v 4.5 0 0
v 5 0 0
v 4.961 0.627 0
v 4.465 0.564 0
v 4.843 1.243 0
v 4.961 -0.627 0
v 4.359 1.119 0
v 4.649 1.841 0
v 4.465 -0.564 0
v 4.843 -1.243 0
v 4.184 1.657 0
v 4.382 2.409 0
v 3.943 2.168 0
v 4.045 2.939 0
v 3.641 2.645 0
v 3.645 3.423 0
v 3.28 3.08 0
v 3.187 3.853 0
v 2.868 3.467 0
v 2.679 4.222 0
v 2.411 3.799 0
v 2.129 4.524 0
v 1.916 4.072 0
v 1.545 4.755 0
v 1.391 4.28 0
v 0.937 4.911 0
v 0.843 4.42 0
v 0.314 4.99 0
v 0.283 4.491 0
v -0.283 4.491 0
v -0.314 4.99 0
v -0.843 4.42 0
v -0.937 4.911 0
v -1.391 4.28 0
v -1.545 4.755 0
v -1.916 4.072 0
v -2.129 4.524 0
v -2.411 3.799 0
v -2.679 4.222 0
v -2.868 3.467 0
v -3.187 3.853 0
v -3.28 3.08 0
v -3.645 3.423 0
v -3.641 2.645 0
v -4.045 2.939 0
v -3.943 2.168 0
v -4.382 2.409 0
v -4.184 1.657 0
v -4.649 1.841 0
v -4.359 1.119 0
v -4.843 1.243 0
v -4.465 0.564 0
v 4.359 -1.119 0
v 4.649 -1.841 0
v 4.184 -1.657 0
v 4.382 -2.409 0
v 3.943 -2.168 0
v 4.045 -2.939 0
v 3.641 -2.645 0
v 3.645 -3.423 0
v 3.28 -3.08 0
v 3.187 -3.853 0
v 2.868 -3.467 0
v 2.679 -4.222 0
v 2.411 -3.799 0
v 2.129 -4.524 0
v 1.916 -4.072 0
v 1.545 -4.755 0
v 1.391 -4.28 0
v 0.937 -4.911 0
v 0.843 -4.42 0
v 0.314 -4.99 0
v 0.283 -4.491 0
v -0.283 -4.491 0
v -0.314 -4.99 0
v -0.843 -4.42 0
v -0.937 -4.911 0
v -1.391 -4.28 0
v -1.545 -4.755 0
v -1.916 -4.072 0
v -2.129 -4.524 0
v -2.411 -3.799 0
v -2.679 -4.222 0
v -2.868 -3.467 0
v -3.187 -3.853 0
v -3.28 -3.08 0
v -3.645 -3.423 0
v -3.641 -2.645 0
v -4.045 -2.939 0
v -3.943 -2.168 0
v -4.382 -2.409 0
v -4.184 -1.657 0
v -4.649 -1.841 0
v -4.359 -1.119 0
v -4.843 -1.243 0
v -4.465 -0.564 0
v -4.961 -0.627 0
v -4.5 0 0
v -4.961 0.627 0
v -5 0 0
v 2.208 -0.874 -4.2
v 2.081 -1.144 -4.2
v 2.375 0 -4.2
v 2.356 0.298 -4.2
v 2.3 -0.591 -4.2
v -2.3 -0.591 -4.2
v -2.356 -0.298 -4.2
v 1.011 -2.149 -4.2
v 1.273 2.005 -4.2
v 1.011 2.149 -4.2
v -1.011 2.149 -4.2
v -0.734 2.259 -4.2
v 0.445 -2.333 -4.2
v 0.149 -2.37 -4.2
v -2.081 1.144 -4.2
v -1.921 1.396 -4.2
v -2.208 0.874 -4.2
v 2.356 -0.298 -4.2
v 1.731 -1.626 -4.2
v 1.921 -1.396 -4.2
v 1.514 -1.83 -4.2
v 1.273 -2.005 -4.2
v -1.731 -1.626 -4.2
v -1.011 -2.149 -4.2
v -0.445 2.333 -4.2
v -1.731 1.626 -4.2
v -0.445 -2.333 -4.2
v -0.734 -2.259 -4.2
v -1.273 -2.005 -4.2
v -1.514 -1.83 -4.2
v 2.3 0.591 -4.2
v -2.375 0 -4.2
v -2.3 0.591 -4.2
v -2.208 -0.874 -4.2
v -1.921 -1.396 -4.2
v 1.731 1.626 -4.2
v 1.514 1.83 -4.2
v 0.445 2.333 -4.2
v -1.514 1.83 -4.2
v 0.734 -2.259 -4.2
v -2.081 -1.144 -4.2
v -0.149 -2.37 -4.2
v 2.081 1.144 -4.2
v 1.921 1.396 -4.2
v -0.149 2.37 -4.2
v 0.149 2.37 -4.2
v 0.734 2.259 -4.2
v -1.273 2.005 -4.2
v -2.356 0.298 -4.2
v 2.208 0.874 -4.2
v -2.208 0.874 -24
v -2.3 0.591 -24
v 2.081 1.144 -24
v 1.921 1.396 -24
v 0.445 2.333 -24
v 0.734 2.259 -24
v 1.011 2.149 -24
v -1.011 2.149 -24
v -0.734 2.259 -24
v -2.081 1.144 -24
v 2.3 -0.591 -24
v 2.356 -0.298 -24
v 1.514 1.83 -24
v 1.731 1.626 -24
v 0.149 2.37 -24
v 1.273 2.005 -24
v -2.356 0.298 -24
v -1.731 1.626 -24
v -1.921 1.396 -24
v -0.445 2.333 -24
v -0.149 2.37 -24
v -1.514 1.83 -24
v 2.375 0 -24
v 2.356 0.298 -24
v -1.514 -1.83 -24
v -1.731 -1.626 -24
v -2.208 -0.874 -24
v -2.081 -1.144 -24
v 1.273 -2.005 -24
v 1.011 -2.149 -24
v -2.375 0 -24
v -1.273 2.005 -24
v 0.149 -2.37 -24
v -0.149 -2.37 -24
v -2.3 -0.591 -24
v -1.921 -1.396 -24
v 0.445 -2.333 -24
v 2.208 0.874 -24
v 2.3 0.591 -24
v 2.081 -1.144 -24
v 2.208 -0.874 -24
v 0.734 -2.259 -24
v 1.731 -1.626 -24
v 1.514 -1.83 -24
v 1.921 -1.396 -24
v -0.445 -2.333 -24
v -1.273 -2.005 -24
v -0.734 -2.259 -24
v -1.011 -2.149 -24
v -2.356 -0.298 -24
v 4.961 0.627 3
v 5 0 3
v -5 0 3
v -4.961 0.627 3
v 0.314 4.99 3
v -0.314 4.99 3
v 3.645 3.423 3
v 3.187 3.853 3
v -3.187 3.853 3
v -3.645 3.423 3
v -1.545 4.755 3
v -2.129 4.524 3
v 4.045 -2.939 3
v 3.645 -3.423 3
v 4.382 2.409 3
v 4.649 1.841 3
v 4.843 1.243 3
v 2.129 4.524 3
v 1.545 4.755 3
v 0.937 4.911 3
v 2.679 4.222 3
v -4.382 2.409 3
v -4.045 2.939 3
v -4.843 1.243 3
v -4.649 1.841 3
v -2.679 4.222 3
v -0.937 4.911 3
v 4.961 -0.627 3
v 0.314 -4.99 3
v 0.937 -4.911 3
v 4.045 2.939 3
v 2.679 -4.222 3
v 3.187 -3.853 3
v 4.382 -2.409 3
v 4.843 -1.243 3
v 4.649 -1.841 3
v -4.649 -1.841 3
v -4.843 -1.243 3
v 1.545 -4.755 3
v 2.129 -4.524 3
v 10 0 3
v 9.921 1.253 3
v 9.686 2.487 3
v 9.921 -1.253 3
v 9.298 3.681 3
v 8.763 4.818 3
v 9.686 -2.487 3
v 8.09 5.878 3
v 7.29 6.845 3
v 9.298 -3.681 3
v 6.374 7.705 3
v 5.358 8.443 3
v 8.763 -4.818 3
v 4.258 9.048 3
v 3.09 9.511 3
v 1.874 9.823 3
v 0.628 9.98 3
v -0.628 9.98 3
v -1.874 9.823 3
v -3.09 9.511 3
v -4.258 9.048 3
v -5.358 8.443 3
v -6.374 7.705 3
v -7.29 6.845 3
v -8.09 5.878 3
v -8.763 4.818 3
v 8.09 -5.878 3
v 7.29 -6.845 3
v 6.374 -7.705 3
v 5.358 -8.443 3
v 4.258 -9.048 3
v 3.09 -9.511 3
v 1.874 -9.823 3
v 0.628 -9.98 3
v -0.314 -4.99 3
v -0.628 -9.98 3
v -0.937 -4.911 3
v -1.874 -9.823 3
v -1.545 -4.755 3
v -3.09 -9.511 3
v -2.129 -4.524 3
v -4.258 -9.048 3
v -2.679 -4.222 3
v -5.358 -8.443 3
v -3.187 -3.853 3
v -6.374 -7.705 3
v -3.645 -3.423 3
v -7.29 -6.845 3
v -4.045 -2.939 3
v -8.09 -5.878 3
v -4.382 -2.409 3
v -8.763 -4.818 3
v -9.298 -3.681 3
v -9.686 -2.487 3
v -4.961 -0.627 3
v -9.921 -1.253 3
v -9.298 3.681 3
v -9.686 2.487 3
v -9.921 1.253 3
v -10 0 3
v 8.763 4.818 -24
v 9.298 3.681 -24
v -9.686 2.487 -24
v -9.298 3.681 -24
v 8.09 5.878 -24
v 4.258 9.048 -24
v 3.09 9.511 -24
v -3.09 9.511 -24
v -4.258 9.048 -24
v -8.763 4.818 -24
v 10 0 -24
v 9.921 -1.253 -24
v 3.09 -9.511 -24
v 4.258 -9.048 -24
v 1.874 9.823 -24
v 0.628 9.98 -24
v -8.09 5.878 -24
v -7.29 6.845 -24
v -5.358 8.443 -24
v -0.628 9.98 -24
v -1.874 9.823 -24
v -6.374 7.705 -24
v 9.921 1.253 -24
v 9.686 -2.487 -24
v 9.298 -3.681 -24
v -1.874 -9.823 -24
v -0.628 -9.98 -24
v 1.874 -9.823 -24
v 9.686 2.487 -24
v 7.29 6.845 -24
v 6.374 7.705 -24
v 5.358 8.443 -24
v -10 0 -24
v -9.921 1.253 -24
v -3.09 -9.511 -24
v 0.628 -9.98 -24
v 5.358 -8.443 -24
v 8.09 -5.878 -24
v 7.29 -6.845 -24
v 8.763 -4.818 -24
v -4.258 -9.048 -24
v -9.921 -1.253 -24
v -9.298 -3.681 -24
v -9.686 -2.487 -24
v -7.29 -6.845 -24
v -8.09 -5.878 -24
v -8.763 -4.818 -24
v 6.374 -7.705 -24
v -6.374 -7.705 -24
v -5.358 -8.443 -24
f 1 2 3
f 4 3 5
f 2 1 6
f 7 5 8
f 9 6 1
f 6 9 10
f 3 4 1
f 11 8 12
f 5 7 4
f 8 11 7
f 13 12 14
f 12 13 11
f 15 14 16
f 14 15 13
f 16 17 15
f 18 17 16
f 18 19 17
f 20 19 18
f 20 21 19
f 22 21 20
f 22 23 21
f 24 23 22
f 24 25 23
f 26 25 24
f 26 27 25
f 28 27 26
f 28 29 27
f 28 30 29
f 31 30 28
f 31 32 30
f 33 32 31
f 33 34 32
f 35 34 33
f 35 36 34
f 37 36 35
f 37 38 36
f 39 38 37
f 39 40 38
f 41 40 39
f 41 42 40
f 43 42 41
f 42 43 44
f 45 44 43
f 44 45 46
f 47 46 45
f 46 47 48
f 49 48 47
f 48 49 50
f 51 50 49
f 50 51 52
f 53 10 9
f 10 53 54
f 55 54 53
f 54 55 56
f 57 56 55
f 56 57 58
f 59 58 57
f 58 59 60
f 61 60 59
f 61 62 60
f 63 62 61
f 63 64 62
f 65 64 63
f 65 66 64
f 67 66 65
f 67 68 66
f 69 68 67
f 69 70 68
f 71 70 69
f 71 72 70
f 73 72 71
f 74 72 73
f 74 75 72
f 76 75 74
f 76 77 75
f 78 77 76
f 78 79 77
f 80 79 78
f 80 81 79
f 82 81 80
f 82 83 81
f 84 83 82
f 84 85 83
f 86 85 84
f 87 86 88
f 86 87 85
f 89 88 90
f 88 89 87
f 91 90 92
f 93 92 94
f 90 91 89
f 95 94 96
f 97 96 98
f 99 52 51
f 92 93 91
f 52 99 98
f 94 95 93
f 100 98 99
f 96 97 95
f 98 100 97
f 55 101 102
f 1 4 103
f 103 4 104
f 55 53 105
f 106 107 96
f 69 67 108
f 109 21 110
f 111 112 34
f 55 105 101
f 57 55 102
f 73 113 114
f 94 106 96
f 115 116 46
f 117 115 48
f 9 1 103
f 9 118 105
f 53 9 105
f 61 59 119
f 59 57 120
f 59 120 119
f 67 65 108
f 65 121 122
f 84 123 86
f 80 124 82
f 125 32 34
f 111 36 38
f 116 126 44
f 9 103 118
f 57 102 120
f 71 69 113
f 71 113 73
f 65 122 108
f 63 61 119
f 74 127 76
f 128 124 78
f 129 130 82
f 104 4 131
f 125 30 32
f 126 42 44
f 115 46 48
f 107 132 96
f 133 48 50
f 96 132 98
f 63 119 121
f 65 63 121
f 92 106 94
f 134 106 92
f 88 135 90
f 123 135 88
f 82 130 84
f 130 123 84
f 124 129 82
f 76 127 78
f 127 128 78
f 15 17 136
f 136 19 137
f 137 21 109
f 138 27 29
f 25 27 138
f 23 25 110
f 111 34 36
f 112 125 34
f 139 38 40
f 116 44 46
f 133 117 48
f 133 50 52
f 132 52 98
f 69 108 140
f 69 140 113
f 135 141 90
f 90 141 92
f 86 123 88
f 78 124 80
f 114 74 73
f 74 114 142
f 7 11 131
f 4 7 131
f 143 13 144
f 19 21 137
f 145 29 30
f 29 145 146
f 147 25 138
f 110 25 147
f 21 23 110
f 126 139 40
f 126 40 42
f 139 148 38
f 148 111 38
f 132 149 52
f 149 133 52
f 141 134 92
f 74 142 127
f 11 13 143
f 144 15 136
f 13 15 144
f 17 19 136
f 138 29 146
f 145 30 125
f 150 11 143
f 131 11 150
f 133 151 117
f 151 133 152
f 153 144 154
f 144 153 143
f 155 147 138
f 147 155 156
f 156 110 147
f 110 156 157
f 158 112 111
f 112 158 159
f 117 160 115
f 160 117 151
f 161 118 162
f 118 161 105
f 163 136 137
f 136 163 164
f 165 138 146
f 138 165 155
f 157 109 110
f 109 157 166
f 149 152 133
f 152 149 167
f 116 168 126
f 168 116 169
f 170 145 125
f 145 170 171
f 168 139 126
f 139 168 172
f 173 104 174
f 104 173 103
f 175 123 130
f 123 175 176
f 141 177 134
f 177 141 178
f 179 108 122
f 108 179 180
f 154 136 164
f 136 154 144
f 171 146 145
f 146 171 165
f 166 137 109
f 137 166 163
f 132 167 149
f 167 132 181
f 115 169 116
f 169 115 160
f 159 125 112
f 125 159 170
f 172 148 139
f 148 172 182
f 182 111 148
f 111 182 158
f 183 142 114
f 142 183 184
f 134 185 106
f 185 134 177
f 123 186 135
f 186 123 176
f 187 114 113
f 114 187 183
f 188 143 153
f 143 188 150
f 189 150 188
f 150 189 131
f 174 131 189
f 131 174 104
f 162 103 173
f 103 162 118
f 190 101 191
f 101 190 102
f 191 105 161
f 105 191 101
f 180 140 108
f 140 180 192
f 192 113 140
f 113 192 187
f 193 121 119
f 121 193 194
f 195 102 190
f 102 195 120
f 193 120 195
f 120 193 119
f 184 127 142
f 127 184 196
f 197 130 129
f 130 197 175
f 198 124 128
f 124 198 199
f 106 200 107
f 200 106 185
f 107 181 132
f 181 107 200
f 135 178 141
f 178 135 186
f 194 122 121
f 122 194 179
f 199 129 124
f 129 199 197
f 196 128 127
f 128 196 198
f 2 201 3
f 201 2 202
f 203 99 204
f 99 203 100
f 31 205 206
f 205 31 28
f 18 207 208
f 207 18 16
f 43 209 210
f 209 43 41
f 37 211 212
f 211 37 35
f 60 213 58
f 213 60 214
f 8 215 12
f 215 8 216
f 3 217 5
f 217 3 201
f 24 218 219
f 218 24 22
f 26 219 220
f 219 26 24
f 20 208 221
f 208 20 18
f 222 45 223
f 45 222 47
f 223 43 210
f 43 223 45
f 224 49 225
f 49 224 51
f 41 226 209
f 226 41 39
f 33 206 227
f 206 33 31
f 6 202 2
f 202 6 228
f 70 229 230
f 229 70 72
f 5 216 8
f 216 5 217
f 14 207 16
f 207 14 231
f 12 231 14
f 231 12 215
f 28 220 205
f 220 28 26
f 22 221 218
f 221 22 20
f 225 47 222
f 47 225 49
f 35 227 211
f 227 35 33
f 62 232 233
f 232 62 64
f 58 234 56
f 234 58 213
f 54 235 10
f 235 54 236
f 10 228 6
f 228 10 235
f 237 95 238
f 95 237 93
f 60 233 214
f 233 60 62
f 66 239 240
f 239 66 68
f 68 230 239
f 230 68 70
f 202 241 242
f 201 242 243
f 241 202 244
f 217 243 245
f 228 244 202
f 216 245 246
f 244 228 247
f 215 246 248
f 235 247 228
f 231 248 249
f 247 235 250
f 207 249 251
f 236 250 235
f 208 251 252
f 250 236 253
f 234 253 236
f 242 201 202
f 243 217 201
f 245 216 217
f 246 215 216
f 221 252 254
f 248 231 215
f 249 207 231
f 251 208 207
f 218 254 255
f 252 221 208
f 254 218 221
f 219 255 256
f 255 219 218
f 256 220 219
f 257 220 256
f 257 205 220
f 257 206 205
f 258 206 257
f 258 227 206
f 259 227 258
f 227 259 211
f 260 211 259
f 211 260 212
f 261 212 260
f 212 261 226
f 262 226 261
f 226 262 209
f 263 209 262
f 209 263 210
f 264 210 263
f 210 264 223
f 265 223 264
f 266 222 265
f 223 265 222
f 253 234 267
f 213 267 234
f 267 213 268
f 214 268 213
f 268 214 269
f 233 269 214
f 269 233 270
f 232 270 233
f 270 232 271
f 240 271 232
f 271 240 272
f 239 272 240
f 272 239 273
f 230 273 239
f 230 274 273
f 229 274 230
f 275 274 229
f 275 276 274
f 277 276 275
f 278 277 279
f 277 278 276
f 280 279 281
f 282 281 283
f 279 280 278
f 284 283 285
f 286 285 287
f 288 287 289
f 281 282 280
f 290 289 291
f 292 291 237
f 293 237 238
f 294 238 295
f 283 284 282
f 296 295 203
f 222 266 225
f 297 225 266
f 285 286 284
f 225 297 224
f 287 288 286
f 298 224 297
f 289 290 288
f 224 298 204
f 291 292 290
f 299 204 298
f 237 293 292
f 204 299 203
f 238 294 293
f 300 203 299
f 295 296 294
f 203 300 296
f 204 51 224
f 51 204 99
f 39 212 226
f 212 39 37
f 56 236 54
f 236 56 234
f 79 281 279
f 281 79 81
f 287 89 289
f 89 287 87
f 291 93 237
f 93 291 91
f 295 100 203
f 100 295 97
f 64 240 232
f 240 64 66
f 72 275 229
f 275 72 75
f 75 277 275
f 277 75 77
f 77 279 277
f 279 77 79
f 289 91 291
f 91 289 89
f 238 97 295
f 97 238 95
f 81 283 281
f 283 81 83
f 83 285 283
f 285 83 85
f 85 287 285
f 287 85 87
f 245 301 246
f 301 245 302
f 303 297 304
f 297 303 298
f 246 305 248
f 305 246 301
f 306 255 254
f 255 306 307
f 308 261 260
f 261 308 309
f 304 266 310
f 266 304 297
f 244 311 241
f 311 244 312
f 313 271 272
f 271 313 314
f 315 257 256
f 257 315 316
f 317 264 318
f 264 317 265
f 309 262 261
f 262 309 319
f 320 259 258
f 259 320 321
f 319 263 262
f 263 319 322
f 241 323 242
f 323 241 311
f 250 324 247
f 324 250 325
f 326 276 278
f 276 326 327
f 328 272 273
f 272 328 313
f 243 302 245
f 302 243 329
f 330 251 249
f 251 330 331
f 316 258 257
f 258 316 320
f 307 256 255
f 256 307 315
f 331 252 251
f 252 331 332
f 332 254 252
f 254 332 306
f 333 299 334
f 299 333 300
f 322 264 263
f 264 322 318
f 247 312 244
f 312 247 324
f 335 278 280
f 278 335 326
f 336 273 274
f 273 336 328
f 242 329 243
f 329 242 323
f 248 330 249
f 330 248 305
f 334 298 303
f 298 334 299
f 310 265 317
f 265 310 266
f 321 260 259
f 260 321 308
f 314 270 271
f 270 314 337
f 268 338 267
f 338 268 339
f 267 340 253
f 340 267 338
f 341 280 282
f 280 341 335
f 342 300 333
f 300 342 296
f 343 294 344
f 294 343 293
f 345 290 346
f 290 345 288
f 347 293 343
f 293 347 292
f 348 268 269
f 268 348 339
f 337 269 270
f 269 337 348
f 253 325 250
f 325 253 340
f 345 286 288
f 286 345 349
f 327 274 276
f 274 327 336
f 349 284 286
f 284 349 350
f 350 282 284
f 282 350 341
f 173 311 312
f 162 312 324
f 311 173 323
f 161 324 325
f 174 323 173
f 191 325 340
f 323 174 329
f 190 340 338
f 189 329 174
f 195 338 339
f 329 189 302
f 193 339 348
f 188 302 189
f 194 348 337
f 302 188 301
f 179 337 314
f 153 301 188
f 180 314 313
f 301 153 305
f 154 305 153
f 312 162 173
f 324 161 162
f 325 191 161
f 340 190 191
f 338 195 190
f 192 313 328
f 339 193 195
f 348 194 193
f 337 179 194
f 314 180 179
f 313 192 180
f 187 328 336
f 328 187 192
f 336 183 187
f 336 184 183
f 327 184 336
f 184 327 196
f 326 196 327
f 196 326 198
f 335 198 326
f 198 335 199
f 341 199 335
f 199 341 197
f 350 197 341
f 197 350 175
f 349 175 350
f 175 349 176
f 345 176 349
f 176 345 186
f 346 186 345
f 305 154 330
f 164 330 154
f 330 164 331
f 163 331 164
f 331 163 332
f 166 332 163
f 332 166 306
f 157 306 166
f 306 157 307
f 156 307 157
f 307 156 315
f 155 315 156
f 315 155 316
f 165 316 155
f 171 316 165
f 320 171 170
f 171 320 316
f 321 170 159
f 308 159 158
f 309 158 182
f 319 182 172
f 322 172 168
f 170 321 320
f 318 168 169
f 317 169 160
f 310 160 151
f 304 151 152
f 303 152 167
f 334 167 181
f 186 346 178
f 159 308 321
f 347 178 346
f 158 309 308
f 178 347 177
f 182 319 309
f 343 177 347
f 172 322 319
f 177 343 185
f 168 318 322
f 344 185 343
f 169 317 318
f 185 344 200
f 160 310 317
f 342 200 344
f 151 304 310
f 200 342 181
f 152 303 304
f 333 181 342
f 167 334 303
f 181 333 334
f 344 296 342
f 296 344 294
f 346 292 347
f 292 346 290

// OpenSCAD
$fn = 50;


difference() {
	union() {
		translate(v = [0, 0, -24.0000000000]) {
			cylinder(h = 27, r = 10.0000000000);
		}
	}
	union() {
		translate(v = [0, 0, 0]) {
			rotate(a = [0, 0, 0]) {
				difference() {
					union() {
						translate(v = [0, 0, -27.0000000000]) {
							cylinder(h = 27, r = 2.2500000000);
						}
						translate(v = [0, 0, -4.2000000000]) {
							cylinder(h = 4.2000000000, r1 = 2.3750000000, r2 = 4.5000000000);
						}
						translate(v = [0, 0, -27.0000000000]) {
							cylinder(h = 27, r = 2.3750000000);
						}
						translate(v = [0, 0, -27.0000000000]) {
							cylinder(h = 27, r = 2.2500000000);
						}
					}
					union();
				}
			}
		}
		#cylinder(h = 3, r = 5.0000000000);
	}
}
